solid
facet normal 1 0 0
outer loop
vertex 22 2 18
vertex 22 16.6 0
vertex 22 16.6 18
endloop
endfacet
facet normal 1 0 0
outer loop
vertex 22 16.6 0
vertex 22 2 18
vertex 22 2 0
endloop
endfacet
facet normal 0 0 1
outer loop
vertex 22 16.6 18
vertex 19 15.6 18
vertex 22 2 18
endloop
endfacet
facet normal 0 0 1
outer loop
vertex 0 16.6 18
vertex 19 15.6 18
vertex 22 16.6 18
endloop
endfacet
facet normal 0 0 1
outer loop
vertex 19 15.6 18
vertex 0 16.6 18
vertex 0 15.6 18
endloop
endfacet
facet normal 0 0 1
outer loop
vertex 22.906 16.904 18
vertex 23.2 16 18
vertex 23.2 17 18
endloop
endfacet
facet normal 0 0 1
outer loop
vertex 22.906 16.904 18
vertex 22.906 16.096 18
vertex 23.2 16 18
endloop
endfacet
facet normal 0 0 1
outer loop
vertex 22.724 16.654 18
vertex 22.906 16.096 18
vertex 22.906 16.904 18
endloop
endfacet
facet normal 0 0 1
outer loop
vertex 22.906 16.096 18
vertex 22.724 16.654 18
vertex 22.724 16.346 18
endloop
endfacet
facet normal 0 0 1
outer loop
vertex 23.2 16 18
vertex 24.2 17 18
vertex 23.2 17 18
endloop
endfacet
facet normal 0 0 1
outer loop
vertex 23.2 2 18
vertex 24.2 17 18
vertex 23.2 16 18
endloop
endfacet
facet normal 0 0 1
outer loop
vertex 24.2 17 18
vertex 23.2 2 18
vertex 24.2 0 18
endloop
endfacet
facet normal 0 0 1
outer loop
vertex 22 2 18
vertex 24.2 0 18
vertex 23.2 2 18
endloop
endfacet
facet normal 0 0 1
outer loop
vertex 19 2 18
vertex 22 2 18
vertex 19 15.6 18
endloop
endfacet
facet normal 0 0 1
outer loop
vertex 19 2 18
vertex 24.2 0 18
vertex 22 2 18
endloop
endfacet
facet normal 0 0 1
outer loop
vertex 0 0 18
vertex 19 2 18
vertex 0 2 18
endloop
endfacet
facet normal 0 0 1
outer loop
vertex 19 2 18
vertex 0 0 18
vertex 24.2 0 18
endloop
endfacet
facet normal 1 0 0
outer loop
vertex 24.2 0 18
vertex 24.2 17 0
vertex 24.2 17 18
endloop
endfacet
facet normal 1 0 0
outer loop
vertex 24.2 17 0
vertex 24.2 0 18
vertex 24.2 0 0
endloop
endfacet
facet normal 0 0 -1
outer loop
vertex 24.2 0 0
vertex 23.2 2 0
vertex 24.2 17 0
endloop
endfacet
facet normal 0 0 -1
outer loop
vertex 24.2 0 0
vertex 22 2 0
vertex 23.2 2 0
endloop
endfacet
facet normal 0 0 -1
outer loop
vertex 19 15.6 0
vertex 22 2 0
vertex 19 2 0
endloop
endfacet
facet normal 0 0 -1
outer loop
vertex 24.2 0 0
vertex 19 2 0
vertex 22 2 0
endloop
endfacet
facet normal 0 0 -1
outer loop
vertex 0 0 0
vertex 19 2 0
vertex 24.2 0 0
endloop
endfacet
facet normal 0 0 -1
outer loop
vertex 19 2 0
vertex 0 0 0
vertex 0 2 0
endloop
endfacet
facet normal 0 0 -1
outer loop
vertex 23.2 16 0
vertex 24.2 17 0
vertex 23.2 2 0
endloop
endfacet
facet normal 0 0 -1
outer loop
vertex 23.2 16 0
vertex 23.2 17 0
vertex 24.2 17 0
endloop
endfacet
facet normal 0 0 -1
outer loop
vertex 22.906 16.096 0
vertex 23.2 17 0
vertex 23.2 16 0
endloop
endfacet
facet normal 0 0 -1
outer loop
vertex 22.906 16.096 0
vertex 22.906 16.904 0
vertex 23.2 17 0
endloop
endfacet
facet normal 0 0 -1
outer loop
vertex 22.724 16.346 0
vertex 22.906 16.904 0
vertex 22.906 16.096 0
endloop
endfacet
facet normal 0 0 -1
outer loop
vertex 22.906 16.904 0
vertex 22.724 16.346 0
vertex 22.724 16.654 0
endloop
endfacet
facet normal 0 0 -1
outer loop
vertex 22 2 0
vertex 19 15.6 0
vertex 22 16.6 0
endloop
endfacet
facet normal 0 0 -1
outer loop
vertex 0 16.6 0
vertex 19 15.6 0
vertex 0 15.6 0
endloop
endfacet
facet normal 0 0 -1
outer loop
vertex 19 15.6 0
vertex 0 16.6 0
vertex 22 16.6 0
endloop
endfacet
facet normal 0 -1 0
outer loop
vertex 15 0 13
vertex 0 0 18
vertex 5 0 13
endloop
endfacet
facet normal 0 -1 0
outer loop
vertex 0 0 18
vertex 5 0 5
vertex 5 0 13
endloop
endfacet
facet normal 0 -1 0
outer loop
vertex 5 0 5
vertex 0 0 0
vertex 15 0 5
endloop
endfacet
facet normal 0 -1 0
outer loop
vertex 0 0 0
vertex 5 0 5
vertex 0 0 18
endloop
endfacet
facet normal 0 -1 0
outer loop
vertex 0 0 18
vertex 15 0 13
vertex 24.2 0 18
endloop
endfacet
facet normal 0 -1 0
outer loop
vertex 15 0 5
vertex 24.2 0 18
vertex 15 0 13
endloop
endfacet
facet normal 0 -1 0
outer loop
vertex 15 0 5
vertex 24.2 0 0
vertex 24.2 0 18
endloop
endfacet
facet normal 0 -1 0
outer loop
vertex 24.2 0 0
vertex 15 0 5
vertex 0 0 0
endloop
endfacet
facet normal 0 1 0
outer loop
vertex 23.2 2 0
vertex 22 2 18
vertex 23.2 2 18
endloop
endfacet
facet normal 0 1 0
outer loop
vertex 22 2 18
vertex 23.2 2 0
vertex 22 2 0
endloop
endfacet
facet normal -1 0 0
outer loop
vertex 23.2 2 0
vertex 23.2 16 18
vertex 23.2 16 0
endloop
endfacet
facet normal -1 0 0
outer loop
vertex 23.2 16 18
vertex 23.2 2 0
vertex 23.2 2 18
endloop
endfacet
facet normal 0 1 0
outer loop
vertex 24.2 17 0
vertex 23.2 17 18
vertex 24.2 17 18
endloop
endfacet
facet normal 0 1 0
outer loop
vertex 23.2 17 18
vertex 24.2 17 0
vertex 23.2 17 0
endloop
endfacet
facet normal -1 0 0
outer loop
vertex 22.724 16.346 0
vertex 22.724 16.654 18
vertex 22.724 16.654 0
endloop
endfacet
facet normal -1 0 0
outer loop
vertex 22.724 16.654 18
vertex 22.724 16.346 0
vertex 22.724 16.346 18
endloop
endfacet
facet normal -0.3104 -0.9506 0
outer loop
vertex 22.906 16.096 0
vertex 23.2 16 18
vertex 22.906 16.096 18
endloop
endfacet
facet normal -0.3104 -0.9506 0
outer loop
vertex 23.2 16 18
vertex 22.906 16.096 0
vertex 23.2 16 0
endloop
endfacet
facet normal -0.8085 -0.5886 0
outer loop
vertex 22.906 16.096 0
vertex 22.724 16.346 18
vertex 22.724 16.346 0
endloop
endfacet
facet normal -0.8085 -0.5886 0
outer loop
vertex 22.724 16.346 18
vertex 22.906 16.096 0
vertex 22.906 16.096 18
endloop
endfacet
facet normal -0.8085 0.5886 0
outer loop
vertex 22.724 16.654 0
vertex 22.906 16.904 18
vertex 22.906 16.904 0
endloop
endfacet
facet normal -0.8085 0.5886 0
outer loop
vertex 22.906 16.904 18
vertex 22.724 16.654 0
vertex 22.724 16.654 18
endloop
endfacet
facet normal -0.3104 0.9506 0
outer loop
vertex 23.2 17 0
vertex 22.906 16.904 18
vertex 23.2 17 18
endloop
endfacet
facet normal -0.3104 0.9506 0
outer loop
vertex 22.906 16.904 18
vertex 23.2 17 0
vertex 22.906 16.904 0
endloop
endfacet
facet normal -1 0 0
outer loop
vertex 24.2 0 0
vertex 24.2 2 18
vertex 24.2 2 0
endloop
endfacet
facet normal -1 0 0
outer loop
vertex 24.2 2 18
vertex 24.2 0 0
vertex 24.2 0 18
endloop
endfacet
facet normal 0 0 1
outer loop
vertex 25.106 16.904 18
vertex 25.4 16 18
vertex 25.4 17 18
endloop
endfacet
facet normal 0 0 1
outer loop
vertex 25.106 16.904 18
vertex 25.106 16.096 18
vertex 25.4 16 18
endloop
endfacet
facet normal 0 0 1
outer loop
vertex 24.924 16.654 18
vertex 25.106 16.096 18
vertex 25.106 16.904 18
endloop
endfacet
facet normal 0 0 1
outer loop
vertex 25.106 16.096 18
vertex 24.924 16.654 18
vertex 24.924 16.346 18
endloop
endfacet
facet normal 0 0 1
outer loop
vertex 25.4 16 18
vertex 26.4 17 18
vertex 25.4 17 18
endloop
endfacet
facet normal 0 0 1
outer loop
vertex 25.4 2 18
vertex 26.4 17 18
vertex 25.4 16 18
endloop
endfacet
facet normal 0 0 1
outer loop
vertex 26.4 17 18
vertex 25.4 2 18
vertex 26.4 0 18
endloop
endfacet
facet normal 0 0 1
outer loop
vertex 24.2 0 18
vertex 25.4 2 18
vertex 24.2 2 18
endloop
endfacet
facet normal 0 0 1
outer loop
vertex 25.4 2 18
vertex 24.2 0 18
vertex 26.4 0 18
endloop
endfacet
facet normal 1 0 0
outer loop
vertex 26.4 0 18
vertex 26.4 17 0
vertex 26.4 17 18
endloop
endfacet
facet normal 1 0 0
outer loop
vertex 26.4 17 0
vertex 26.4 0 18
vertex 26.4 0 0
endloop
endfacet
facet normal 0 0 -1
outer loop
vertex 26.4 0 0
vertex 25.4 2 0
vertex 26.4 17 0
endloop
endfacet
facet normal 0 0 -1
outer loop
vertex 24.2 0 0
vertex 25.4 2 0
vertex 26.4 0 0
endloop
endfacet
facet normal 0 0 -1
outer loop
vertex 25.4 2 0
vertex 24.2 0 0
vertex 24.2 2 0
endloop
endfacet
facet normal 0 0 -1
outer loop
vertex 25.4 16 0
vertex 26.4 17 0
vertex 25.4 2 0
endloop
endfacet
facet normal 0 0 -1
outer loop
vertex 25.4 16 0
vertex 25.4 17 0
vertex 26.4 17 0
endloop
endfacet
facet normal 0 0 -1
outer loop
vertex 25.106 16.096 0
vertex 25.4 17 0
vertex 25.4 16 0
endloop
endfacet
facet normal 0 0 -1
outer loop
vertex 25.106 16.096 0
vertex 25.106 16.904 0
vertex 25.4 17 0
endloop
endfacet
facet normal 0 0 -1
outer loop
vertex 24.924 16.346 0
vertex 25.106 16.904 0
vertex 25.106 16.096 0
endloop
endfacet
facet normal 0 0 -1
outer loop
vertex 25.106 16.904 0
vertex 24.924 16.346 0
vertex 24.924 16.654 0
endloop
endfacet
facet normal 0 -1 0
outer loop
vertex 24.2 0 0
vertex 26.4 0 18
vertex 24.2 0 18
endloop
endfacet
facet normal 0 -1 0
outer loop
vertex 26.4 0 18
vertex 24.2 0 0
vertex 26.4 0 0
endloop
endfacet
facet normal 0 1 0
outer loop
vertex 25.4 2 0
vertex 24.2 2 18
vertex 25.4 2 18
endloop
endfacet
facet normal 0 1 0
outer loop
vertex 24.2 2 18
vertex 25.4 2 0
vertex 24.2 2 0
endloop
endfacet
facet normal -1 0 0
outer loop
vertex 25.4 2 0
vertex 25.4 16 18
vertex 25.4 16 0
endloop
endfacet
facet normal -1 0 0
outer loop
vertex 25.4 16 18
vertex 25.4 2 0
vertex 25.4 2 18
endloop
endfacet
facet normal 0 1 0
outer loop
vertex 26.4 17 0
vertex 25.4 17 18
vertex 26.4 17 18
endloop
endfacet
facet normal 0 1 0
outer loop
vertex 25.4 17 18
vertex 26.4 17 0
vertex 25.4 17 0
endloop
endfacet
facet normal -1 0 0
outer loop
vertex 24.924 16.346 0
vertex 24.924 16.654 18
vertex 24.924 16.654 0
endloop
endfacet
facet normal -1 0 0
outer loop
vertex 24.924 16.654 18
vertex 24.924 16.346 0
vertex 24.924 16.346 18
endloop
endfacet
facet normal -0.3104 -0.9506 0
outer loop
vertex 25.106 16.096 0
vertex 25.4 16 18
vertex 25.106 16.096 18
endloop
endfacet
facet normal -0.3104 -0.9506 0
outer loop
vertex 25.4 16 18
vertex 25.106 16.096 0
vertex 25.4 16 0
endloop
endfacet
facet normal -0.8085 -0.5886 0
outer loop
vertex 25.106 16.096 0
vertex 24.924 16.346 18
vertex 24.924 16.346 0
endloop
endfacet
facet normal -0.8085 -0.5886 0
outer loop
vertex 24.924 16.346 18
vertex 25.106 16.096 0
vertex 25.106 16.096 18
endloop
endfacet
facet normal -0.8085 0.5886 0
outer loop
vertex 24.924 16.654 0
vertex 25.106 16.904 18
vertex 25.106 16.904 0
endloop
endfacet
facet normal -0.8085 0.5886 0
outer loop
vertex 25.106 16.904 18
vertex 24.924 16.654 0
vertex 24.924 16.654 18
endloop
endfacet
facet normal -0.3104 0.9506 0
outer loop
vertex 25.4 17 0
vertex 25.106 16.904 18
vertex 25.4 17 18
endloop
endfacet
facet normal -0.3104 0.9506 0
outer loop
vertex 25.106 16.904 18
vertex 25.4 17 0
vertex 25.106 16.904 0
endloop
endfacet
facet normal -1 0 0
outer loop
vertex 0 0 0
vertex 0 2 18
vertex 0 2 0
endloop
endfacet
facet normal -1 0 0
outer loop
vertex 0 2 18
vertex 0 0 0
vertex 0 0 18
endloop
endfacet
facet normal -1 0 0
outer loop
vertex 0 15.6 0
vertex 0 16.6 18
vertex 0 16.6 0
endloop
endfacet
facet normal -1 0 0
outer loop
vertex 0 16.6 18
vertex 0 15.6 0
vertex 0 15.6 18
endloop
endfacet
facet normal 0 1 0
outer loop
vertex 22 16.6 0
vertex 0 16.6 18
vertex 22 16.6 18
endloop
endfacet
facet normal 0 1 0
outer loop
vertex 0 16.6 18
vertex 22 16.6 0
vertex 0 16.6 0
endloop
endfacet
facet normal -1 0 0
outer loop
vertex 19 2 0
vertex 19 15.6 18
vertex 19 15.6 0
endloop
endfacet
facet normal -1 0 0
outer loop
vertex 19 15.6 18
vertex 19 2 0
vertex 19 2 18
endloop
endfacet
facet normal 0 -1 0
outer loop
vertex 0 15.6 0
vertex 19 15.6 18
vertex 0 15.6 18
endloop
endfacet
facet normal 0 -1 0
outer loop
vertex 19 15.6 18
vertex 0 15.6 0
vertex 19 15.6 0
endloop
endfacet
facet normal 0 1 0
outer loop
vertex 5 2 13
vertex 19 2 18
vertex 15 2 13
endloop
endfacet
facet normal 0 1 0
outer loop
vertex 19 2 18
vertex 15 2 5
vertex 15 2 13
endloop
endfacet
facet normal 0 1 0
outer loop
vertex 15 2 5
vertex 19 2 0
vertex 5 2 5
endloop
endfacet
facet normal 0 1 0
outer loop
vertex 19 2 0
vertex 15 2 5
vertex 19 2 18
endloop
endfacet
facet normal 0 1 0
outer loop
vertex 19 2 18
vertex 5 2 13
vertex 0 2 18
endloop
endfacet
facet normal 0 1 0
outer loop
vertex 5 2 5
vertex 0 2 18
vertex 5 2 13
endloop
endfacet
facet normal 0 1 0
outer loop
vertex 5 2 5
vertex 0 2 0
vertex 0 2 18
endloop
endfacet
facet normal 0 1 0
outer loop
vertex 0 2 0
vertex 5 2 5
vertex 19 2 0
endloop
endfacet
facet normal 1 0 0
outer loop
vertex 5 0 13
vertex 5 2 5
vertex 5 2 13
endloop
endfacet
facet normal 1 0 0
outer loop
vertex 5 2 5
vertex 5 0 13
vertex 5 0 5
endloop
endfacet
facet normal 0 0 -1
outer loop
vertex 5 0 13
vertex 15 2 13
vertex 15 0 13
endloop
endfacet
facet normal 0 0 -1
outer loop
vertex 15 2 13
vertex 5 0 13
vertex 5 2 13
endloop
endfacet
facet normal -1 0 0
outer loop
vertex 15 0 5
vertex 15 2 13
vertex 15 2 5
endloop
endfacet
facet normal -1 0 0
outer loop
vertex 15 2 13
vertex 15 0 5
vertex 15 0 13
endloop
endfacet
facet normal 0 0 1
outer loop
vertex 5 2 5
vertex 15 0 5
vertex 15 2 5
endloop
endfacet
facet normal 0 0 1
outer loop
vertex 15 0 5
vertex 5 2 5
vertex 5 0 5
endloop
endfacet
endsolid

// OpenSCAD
difference() {
    union() {
        cube([22, 16.6, 18]);

        // first cable holder
        translate([22, 0, 0]) {
            cube([2.2, 2, 18]);
            translate([1.2, 0, 0]) {
                cube([1, 17, 18]);
            };
            translate([1.2, 16.5, 0]) {
                rotate([0, 0, -90]) {
                    cylinder($fn=10, h=18, r1=0.5, r2=0.5);
                }
            };
        };

        // second cable holder
        translate([24.2, 0, 0]) {
            cube([2.2, 2, 18]);
            translate([1.2, 0, 0]) {
                cube([1, 17, 18]);
            };
            translate([1.2, 16.5, 0]) {
                rotate([0, 0, -90]) {
                    cylinder($fn=10, h=18, r1=0.5, r2=0.5);
                }
            };
        };
    };
    union() {
        translate([-1,2,-1]) {
            cube([20, 13.6, 32]);
        };
        translate([5, -1, 5]) {
            cube([10, 4, 8]);
        };
    }
}
